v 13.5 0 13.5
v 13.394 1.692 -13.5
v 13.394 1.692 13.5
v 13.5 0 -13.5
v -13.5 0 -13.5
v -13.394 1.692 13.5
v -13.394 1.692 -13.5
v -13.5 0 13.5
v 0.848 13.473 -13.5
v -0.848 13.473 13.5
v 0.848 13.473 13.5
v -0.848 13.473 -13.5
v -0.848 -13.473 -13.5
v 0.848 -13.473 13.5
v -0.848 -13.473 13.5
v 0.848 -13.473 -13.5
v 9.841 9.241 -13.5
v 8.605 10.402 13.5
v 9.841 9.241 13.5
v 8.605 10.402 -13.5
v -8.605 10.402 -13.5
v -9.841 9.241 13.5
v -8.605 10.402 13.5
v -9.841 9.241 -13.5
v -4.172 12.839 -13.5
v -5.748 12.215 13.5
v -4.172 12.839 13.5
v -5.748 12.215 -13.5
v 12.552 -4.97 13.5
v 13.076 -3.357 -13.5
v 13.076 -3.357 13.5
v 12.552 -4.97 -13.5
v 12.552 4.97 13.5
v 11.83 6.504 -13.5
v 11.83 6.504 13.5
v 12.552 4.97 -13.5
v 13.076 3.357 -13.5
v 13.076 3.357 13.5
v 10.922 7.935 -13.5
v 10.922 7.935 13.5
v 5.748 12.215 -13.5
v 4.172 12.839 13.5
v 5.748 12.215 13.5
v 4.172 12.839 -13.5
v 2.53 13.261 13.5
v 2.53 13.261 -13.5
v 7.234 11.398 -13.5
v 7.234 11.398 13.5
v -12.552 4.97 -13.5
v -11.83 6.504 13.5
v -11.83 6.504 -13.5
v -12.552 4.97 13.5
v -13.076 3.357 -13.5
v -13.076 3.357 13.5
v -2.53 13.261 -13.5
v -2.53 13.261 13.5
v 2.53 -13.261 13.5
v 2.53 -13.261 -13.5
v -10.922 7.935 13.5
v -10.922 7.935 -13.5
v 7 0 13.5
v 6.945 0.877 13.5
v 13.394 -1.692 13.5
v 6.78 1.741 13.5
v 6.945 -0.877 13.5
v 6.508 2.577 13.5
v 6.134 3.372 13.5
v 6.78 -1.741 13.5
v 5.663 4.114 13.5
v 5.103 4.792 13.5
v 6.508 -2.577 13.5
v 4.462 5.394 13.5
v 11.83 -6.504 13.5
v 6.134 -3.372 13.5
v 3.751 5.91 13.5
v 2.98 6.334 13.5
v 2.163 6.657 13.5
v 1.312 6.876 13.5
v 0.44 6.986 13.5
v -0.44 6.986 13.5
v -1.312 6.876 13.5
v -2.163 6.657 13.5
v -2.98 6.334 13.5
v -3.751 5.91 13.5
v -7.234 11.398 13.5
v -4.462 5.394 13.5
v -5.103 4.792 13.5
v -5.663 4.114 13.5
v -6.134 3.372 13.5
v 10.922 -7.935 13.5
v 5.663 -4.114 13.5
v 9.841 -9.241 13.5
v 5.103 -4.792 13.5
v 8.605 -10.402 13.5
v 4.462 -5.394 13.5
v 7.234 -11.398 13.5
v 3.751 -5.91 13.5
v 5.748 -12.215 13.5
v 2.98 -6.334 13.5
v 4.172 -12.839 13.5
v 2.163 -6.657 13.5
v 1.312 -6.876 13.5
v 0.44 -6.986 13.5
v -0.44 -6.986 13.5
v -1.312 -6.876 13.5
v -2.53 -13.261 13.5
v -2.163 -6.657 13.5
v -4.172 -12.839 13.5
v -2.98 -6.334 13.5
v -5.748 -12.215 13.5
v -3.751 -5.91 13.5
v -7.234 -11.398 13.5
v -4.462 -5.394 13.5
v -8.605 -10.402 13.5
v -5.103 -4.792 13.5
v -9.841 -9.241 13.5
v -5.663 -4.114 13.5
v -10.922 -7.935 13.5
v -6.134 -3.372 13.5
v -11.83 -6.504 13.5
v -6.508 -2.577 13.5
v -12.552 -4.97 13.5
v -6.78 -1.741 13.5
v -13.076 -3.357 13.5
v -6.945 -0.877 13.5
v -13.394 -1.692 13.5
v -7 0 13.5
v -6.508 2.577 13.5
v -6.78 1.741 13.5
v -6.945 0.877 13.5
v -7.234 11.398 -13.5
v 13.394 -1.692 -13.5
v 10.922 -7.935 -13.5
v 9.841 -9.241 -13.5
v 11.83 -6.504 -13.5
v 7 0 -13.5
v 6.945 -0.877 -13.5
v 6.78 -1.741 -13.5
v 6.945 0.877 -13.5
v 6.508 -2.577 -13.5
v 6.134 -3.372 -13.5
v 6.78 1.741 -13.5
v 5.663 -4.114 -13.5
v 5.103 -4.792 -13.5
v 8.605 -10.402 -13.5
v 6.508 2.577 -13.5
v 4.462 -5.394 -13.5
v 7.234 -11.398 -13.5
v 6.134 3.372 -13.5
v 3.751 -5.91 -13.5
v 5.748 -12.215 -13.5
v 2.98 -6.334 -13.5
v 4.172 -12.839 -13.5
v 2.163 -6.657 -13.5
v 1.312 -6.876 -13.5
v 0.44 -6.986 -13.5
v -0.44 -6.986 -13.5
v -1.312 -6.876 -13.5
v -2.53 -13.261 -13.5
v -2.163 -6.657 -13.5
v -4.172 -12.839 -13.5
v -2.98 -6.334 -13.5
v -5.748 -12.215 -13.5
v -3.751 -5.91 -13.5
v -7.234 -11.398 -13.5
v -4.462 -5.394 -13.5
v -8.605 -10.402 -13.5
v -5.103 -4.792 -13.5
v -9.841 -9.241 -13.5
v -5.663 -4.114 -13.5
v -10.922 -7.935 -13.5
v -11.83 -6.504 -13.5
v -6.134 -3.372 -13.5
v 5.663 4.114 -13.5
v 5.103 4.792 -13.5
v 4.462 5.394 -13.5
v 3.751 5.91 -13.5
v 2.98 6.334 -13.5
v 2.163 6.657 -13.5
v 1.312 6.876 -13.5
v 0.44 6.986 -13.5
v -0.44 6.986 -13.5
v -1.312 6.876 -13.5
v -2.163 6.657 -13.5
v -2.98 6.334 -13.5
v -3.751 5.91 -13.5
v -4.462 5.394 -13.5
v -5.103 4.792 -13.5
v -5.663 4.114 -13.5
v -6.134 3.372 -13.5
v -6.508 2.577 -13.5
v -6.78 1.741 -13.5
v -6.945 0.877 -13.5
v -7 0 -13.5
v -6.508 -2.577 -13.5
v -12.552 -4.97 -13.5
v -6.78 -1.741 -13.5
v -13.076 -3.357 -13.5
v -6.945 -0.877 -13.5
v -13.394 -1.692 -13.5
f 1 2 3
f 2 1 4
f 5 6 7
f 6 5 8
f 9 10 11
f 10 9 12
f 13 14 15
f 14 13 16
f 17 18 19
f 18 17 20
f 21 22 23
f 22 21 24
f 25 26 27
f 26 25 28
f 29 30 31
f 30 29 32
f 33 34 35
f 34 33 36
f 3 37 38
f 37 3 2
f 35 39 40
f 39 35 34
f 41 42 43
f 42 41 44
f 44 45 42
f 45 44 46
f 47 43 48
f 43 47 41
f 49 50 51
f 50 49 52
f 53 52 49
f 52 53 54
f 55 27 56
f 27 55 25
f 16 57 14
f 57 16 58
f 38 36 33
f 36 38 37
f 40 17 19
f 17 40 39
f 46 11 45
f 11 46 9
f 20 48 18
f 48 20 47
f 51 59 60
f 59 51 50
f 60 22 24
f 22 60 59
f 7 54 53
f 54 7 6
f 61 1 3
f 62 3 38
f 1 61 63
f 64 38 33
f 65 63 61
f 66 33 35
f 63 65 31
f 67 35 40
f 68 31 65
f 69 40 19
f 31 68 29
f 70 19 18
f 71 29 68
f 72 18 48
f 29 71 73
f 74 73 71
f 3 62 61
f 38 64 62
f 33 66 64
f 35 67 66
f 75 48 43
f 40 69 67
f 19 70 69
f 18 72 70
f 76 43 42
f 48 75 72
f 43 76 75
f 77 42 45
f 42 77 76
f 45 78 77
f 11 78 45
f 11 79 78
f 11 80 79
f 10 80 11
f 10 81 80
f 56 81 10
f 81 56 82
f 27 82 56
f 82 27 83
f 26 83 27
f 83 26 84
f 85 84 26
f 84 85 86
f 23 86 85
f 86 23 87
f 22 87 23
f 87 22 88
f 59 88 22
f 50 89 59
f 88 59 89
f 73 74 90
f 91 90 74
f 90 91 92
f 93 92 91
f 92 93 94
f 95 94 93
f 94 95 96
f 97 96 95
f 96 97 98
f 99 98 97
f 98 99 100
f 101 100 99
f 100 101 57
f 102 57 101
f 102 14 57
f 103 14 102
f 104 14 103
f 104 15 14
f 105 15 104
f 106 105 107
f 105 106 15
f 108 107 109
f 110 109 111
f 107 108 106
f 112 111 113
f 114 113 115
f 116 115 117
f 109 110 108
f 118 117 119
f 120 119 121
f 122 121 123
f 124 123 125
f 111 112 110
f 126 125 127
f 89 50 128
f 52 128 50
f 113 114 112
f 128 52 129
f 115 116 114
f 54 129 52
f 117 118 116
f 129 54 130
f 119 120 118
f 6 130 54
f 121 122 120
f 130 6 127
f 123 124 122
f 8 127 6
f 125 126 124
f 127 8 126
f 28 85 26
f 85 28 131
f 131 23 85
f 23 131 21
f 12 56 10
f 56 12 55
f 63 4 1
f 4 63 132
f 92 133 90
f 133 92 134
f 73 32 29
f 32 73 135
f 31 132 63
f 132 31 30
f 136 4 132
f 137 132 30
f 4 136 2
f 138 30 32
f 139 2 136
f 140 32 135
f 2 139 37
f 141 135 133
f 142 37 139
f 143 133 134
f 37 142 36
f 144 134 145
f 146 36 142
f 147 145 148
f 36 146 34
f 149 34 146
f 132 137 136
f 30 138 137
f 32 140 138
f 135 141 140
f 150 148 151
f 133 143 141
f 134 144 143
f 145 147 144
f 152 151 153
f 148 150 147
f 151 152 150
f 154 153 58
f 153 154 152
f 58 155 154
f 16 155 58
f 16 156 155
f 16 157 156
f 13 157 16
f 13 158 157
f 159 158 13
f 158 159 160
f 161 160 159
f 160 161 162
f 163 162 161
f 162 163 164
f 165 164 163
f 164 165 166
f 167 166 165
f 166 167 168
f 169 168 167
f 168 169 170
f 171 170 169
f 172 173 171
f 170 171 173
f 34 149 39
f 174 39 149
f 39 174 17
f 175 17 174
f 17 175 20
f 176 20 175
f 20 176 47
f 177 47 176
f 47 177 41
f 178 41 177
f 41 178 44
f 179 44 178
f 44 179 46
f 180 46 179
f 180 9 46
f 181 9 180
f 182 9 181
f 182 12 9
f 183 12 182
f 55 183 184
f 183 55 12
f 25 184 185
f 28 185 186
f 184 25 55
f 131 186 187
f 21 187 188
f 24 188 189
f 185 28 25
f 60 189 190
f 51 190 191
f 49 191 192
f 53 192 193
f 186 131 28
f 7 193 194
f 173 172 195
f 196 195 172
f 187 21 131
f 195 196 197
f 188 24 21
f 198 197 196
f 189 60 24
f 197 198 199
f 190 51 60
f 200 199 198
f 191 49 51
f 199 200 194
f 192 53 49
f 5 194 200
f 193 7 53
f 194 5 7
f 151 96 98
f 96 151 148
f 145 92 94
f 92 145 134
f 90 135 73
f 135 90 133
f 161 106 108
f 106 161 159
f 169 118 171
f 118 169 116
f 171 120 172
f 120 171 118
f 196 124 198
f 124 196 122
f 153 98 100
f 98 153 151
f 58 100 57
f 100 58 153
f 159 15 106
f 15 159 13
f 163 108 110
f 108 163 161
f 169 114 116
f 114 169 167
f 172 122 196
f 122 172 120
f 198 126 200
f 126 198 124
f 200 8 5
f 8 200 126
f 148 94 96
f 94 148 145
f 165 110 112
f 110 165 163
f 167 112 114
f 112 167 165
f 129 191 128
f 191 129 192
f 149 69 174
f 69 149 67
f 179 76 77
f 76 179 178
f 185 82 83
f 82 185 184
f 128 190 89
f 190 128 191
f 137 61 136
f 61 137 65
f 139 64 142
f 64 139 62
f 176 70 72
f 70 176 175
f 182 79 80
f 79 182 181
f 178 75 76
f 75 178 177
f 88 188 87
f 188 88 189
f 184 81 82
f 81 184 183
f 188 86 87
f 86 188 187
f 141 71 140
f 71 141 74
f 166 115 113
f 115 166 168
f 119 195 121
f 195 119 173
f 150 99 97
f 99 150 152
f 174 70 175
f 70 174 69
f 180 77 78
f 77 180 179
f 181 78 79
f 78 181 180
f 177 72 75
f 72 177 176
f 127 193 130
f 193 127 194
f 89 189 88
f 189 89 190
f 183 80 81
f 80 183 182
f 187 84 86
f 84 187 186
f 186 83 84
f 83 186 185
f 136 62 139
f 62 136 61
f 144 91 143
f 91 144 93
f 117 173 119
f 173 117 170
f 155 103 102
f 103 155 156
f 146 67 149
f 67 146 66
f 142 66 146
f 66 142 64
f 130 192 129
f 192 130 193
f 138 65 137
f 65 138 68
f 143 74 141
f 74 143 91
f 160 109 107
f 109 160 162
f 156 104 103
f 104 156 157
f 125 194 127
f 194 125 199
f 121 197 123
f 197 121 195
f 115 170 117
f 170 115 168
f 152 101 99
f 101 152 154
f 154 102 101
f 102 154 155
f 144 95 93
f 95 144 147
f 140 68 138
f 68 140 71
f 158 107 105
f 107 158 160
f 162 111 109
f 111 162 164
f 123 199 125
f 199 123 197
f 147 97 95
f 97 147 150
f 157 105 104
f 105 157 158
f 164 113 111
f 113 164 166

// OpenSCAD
$fn = 50;


difference() {
	union() {
		translate(v = [0, 0, -13.5000000000]) {
			cylinder(h = 27, r = 13.5000000000);
		}
	}
	union() {
		translate(v = [0, 0, -100.0000000000]) {
			cylinder(h = 200, r = 7);
		}
	}
}
